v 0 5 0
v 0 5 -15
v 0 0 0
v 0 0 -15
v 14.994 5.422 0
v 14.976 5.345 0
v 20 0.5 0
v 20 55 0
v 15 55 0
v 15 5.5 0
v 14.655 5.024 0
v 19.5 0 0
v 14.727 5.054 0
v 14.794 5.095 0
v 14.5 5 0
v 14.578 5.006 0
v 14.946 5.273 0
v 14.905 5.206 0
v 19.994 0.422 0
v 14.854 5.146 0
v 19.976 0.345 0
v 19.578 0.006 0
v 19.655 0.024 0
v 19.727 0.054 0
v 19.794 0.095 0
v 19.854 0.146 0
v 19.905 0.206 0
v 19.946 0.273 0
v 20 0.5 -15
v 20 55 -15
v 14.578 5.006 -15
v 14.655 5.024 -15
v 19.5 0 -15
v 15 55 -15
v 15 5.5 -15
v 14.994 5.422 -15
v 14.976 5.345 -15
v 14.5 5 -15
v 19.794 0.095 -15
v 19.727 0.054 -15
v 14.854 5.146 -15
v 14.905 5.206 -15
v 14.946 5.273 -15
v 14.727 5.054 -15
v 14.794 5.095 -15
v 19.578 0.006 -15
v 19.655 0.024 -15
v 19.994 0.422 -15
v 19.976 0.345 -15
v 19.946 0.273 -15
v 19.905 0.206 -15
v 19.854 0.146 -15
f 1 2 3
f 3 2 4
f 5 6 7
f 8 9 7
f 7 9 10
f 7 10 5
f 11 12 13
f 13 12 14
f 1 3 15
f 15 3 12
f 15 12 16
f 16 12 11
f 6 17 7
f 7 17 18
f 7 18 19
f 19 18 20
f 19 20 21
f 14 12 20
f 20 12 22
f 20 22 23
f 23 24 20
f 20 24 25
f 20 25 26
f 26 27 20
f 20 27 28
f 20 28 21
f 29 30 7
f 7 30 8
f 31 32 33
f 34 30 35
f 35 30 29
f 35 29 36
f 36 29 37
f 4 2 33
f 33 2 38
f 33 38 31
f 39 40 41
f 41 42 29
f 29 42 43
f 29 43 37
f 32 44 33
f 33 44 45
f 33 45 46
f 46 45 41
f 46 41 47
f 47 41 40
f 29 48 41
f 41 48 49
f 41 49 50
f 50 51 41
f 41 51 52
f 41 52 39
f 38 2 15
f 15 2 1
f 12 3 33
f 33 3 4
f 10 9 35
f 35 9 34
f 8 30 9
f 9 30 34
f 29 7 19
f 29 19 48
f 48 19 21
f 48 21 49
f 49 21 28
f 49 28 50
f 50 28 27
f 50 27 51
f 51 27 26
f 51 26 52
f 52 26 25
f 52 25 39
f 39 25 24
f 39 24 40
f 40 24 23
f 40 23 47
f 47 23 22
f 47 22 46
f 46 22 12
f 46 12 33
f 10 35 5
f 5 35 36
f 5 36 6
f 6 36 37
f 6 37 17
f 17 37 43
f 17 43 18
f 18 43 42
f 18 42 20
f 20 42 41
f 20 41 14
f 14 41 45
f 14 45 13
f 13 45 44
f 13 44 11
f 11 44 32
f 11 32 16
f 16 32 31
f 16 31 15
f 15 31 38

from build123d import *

# Parameters (mm, degrees)
SKETCH2_W           = 20
SKETCH2_H           = 15
BOSS_EXTRUDE1_DEPTH = 5
SKETCH3_W           = 5
SKETCH3_H           = 15
BOSS_EXTRUDE2_DEPTH = 50
FILLET1_R           = 0.5
FILLET2_R           = 0.5


with BuildPart() as part:
    # Sketch2 → Boss-Extrude1 (new body)
    with BuildSketch(Plane(origin=(0, 0, 0), x_dir=(1, 0, 0), z_dir=(0, 1, 0))):
        with Locations((10, 7.5)):
            Rectangle(SKETCH2_W, SKETCH2_H)
    extrude(amount=BOSS_EXTRUDE1_DEPTH)

    # Sketch3 → Boss-Extrude2 (add)
    with BuildSketch(Plane(origin=(0, 5, 0), x_dir=(1, 0, 0), z_dir=(0, 1, 0))):
        with Locations((17.5, 7.5)):
            Rectangle(SKETCH3_W, SKETCH3_H)
    extrude(amount=BOSS_EXTRUDE2_DEPTH)

    # Fillet1
    fillet1_edges = [part.edges().sort_by_distance(p)[0] for p in [
        (20, 0, -7.5),
    ]]
    fillet(fillet1_edges, radius=FILLET1_R)

    # Fillet2
    fillet2_edges = [part.edges().sort_by_distance(p)[0] for p in [
        (15, 5, -7.5),
    ]]
    fillet(fillet2_edges, radius=FILLET2_R)


solid = part.part
